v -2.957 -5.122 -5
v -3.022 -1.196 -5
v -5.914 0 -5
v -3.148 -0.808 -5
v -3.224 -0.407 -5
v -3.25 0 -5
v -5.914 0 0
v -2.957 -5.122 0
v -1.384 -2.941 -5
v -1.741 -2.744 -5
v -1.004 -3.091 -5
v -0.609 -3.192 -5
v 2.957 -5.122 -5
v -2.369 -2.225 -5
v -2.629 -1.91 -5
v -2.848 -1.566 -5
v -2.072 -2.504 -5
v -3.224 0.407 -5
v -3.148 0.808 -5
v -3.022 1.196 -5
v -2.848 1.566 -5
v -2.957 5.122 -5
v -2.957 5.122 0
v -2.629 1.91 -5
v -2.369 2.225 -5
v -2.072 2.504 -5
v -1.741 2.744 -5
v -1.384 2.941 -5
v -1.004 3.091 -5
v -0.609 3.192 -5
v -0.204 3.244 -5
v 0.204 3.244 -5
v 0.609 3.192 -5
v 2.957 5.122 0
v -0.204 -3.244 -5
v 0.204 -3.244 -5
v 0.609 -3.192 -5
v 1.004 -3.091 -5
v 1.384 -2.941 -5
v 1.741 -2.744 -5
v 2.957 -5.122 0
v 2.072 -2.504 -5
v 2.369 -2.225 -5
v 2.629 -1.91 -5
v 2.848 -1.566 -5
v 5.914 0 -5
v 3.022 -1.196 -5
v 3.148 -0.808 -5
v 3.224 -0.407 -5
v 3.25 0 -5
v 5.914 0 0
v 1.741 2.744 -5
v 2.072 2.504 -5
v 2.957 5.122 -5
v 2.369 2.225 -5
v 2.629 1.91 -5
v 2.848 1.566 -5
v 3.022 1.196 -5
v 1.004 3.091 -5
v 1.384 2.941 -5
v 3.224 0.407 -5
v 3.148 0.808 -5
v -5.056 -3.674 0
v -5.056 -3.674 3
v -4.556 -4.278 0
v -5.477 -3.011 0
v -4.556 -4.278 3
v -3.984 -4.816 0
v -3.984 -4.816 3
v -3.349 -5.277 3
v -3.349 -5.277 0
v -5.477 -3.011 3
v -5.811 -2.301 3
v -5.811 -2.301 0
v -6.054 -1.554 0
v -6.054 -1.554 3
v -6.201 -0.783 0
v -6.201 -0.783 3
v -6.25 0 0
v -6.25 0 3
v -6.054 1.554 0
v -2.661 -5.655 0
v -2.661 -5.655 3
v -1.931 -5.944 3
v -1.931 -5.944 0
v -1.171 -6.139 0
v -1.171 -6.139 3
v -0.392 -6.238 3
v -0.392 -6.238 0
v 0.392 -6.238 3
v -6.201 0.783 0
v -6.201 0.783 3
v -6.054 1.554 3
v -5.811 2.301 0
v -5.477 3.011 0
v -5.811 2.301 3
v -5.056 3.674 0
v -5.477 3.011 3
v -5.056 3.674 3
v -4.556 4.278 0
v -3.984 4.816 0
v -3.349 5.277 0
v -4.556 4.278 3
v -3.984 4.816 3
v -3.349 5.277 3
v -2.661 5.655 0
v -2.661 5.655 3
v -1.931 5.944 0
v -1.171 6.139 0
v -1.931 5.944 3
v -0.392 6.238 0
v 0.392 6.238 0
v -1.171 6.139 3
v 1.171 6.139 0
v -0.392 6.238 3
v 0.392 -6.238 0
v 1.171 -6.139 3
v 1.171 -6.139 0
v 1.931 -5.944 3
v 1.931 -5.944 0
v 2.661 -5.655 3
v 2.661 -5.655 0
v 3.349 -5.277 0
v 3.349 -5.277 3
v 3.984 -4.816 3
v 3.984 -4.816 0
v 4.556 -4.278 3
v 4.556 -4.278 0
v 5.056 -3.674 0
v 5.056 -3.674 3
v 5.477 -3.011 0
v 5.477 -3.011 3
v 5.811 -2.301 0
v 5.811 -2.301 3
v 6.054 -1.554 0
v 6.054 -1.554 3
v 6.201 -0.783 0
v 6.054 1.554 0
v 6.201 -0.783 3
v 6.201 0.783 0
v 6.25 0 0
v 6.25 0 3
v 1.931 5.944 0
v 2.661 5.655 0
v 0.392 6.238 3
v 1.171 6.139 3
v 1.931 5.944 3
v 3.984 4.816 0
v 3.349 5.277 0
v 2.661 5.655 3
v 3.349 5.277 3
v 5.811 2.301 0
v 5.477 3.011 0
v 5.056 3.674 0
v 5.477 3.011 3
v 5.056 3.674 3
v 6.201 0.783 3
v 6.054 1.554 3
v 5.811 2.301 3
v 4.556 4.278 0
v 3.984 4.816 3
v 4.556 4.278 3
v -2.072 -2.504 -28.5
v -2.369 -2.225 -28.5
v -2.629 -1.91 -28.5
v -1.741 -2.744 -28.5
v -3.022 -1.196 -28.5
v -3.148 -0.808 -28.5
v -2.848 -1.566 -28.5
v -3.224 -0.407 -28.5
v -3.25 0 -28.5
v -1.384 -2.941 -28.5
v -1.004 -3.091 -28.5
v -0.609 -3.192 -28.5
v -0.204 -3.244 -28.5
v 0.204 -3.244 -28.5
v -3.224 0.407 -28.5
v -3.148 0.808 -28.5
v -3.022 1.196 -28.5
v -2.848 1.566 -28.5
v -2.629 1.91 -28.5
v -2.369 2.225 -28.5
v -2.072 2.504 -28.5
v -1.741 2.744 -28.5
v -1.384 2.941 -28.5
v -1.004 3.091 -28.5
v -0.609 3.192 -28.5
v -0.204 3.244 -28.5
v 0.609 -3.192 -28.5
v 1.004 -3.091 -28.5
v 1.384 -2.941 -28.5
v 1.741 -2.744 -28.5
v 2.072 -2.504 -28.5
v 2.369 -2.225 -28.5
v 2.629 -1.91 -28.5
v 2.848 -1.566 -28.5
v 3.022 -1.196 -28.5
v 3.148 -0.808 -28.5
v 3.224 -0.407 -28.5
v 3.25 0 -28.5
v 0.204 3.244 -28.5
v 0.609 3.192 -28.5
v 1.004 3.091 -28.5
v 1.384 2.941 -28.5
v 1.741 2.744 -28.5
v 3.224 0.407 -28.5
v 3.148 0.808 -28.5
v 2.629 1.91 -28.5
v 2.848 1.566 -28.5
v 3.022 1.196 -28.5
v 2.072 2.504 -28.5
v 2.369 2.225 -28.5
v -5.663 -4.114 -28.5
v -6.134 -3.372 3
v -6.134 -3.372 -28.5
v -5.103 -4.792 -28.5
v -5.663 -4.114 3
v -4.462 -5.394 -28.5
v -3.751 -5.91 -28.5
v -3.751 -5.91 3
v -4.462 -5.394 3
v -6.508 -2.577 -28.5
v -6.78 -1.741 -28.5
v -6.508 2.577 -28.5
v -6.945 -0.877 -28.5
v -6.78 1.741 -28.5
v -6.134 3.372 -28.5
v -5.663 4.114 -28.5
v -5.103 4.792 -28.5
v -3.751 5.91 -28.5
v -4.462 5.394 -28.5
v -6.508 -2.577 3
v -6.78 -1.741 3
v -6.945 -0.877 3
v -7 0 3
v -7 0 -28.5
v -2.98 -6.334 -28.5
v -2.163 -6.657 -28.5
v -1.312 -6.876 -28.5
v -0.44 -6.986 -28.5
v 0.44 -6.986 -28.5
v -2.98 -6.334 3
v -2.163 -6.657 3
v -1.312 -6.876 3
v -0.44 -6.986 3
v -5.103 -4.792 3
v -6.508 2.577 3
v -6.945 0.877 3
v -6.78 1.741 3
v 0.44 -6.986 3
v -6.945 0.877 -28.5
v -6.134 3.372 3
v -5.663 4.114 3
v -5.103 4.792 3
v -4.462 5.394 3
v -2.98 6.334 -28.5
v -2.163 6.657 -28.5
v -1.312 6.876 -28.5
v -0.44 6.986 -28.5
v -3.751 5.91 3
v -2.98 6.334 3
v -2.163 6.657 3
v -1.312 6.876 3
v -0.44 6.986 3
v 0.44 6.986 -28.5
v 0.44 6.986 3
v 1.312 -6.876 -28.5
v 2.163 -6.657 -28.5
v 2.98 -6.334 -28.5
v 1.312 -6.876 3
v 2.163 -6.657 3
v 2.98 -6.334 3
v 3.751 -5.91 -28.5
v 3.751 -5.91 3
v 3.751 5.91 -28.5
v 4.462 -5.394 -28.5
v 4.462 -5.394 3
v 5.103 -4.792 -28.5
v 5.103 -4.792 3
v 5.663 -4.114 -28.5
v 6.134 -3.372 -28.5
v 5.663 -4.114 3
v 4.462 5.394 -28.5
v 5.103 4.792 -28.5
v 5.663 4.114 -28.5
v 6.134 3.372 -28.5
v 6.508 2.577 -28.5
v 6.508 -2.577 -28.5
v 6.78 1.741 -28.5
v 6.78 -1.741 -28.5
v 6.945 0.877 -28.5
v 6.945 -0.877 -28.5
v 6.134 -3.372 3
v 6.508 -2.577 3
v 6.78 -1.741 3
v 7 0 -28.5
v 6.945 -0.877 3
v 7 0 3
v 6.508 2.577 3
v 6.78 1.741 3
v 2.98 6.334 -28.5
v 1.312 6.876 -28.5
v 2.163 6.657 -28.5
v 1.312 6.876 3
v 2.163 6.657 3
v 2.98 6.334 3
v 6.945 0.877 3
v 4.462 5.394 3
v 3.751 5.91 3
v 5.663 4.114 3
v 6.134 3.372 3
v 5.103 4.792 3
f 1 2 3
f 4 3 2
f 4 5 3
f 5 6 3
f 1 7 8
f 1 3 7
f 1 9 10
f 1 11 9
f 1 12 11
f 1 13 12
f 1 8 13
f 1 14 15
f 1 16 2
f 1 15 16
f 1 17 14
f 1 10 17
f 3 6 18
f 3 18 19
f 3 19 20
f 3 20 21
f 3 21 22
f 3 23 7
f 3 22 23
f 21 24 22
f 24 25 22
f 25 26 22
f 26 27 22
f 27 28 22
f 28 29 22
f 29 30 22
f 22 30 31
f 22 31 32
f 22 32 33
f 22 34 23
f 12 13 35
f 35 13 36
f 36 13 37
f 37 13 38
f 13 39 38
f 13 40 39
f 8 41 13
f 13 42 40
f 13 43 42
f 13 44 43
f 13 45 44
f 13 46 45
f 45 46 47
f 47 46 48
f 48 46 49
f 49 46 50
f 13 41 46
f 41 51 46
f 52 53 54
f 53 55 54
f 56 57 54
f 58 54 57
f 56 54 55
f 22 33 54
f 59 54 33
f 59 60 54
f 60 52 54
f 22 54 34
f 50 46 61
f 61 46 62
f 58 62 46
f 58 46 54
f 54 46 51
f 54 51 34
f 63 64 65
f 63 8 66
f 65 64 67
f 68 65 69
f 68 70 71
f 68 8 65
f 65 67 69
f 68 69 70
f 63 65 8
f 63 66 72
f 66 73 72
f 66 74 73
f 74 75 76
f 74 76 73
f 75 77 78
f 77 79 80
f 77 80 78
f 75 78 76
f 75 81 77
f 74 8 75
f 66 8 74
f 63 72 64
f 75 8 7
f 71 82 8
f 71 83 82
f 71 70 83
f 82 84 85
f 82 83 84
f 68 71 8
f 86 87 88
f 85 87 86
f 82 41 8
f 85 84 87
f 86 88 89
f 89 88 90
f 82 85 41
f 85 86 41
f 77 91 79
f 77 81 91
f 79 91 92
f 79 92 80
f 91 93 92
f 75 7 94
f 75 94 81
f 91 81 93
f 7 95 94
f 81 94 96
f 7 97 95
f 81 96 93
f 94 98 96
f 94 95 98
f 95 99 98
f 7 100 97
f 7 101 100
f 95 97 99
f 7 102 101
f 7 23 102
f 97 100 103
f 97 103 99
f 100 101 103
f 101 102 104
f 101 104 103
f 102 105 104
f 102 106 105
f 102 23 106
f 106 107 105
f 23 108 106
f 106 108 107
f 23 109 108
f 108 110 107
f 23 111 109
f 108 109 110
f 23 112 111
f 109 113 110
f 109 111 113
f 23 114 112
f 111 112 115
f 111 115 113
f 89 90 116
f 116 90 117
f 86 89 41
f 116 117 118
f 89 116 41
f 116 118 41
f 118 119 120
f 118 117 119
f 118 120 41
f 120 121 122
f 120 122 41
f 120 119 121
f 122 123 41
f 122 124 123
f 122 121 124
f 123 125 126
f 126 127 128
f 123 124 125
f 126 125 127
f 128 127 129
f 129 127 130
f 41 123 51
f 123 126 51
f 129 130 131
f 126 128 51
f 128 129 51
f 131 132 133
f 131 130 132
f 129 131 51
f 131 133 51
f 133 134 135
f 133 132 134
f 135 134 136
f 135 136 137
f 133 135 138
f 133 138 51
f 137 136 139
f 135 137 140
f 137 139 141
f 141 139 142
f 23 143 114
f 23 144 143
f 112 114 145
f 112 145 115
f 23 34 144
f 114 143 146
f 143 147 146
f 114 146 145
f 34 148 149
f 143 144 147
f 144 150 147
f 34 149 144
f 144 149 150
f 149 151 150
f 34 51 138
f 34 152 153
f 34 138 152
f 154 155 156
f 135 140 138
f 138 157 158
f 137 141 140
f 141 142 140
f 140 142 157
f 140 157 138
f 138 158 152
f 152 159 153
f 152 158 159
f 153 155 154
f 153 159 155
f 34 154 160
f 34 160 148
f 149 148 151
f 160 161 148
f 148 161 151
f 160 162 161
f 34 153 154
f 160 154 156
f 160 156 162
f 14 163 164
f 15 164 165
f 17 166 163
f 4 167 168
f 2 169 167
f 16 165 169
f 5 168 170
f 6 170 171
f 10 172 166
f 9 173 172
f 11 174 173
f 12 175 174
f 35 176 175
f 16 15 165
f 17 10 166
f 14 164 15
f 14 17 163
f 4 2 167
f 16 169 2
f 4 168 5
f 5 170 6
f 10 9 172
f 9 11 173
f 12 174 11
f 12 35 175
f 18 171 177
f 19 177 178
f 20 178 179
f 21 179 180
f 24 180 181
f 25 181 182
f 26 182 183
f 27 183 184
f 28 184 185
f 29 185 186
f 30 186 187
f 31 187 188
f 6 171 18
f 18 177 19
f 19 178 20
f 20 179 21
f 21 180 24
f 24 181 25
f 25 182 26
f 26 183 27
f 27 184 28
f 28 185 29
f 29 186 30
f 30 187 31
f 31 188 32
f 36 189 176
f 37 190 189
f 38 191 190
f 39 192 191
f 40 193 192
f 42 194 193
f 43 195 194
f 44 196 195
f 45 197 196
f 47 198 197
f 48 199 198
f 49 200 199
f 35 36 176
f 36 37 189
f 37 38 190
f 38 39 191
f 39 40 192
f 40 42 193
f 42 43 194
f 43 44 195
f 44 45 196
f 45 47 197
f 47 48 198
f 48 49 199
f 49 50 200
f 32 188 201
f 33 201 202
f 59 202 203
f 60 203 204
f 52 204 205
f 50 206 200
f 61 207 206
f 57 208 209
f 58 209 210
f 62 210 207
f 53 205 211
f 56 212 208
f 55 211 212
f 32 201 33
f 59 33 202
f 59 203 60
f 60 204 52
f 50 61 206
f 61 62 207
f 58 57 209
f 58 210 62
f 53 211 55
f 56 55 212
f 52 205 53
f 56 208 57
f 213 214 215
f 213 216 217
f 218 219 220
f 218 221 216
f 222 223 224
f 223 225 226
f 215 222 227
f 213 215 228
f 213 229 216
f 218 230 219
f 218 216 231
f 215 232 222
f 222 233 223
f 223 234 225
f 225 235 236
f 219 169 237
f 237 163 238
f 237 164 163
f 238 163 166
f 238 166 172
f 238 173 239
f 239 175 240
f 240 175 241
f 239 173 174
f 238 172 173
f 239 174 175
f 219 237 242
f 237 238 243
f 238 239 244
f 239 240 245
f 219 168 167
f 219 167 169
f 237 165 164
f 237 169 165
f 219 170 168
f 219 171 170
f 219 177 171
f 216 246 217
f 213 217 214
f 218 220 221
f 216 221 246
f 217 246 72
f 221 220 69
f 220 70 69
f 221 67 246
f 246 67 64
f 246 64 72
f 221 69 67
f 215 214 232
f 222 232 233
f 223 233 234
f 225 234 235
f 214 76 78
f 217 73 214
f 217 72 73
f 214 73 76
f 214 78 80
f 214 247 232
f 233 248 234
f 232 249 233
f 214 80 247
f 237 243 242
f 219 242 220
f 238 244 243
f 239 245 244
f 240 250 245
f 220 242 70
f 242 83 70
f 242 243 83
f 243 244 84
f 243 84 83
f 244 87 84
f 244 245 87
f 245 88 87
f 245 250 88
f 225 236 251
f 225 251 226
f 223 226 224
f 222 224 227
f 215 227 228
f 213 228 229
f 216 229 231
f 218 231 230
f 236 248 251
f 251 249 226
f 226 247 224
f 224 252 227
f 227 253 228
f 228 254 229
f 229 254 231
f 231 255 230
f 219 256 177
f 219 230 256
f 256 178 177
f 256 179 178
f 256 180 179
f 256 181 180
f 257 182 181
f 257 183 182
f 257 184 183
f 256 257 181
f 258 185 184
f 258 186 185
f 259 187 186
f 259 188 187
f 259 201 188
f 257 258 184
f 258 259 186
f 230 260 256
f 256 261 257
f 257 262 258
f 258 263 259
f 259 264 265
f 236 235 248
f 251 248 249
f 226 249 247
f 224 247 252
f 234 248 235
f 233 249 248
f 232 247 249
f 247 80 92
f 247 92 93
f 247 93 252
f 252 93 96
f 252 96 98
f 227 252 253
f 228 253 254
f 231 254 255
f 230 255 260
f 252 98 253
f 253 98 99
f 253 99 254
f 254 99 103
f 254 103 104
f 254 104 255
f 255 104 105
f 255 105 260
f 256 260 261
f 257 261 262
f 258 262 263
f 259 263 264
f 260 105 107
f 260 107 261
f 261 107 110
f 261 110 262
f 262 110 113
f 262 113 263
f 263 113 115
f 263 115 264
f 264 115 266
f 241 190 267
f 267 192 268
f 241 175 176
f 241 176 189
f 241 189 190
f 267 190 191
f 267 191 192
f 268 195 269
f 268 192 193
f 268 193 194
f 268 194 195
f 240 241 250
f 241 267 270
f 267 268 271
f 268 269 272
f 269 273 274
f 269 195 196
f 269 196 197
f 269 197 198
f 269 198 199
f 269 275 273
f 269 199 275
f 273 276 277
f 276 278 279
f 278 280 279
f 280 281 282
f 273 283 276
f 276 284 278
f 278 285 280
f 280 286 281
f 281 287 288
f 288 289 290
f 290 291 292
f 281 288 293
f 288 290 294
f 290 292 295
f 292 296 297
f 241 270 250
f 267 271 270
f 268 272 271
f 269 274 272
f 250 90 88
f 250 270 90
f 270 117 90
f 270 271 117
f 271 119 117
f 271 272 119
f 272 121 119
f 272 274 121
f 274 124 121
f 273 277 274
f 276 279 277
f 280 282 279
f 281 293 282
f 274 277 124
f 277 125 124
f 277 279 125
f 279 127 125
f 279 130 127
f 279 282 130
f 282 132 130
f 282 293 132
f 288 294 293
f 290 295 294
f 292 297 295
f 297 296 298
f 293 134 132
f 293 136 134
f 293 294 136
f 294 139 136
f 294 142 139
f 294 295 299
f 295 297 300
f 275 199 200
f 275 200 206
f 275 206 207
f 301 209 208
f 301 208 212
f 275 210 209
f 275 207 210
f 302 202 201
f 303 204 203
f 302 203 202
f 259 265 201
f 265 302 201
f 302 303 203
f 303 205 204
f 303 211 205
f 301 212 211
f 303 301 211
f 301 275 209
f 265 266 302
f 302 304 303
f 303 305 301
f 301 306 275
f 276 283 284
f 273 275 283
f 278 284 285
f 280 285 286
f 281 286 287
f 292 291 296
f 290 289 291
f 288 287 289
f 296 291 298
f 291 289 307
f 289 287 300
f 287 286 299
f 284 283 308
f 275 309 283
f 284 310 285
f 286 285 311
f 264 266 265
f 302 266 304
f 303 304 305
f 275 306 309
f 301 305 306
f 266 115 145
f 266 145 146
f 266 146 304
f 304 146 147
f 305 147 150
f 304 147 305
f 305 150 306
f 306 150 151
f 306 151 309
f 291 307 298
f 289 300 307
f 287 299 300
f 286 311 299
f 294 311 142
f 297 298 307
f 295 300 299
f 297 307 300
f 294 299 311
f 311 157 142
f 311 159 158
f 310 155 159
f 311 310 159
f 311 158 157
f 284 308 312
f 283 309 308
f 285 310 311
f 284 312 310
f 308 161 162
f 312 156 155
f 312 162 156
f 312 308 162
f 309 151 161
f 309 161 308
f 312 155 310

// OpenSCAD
$fn = 50;

difference() {
	union() {
		translate(v = [0, 0, -28.5]) {
			cylinder(h = 31.5, r = 7.0);
		}
	}
	union() {
		translate(v = [0, 0, 0]) {
			rotate(a = [0, 0, 0]) {
				difference() {
					union() {
						translate(v = [0, 0, -5]) {
							linear_extrude(height = 5) {
								polygon(points = [[5.914249999999999, 0.0], [2.957125, 5.1218907443321156], [-2.9571249999999982, 5.1218907443321156], [-5.914249999999999, 7.242867331857232e-16], [-2.9571250000000022, -5.121890744332115], [2.9571249999999956, -5.121890744332118]]);
							}
						}
					}
					union();
				}
			}
		}
		#cylinder(h = 3, r = 6.25);
		#translate(v = [0, 0, -100.0]) {
			cylinder(h = 200, r = 3.25);
		}
	}
}
